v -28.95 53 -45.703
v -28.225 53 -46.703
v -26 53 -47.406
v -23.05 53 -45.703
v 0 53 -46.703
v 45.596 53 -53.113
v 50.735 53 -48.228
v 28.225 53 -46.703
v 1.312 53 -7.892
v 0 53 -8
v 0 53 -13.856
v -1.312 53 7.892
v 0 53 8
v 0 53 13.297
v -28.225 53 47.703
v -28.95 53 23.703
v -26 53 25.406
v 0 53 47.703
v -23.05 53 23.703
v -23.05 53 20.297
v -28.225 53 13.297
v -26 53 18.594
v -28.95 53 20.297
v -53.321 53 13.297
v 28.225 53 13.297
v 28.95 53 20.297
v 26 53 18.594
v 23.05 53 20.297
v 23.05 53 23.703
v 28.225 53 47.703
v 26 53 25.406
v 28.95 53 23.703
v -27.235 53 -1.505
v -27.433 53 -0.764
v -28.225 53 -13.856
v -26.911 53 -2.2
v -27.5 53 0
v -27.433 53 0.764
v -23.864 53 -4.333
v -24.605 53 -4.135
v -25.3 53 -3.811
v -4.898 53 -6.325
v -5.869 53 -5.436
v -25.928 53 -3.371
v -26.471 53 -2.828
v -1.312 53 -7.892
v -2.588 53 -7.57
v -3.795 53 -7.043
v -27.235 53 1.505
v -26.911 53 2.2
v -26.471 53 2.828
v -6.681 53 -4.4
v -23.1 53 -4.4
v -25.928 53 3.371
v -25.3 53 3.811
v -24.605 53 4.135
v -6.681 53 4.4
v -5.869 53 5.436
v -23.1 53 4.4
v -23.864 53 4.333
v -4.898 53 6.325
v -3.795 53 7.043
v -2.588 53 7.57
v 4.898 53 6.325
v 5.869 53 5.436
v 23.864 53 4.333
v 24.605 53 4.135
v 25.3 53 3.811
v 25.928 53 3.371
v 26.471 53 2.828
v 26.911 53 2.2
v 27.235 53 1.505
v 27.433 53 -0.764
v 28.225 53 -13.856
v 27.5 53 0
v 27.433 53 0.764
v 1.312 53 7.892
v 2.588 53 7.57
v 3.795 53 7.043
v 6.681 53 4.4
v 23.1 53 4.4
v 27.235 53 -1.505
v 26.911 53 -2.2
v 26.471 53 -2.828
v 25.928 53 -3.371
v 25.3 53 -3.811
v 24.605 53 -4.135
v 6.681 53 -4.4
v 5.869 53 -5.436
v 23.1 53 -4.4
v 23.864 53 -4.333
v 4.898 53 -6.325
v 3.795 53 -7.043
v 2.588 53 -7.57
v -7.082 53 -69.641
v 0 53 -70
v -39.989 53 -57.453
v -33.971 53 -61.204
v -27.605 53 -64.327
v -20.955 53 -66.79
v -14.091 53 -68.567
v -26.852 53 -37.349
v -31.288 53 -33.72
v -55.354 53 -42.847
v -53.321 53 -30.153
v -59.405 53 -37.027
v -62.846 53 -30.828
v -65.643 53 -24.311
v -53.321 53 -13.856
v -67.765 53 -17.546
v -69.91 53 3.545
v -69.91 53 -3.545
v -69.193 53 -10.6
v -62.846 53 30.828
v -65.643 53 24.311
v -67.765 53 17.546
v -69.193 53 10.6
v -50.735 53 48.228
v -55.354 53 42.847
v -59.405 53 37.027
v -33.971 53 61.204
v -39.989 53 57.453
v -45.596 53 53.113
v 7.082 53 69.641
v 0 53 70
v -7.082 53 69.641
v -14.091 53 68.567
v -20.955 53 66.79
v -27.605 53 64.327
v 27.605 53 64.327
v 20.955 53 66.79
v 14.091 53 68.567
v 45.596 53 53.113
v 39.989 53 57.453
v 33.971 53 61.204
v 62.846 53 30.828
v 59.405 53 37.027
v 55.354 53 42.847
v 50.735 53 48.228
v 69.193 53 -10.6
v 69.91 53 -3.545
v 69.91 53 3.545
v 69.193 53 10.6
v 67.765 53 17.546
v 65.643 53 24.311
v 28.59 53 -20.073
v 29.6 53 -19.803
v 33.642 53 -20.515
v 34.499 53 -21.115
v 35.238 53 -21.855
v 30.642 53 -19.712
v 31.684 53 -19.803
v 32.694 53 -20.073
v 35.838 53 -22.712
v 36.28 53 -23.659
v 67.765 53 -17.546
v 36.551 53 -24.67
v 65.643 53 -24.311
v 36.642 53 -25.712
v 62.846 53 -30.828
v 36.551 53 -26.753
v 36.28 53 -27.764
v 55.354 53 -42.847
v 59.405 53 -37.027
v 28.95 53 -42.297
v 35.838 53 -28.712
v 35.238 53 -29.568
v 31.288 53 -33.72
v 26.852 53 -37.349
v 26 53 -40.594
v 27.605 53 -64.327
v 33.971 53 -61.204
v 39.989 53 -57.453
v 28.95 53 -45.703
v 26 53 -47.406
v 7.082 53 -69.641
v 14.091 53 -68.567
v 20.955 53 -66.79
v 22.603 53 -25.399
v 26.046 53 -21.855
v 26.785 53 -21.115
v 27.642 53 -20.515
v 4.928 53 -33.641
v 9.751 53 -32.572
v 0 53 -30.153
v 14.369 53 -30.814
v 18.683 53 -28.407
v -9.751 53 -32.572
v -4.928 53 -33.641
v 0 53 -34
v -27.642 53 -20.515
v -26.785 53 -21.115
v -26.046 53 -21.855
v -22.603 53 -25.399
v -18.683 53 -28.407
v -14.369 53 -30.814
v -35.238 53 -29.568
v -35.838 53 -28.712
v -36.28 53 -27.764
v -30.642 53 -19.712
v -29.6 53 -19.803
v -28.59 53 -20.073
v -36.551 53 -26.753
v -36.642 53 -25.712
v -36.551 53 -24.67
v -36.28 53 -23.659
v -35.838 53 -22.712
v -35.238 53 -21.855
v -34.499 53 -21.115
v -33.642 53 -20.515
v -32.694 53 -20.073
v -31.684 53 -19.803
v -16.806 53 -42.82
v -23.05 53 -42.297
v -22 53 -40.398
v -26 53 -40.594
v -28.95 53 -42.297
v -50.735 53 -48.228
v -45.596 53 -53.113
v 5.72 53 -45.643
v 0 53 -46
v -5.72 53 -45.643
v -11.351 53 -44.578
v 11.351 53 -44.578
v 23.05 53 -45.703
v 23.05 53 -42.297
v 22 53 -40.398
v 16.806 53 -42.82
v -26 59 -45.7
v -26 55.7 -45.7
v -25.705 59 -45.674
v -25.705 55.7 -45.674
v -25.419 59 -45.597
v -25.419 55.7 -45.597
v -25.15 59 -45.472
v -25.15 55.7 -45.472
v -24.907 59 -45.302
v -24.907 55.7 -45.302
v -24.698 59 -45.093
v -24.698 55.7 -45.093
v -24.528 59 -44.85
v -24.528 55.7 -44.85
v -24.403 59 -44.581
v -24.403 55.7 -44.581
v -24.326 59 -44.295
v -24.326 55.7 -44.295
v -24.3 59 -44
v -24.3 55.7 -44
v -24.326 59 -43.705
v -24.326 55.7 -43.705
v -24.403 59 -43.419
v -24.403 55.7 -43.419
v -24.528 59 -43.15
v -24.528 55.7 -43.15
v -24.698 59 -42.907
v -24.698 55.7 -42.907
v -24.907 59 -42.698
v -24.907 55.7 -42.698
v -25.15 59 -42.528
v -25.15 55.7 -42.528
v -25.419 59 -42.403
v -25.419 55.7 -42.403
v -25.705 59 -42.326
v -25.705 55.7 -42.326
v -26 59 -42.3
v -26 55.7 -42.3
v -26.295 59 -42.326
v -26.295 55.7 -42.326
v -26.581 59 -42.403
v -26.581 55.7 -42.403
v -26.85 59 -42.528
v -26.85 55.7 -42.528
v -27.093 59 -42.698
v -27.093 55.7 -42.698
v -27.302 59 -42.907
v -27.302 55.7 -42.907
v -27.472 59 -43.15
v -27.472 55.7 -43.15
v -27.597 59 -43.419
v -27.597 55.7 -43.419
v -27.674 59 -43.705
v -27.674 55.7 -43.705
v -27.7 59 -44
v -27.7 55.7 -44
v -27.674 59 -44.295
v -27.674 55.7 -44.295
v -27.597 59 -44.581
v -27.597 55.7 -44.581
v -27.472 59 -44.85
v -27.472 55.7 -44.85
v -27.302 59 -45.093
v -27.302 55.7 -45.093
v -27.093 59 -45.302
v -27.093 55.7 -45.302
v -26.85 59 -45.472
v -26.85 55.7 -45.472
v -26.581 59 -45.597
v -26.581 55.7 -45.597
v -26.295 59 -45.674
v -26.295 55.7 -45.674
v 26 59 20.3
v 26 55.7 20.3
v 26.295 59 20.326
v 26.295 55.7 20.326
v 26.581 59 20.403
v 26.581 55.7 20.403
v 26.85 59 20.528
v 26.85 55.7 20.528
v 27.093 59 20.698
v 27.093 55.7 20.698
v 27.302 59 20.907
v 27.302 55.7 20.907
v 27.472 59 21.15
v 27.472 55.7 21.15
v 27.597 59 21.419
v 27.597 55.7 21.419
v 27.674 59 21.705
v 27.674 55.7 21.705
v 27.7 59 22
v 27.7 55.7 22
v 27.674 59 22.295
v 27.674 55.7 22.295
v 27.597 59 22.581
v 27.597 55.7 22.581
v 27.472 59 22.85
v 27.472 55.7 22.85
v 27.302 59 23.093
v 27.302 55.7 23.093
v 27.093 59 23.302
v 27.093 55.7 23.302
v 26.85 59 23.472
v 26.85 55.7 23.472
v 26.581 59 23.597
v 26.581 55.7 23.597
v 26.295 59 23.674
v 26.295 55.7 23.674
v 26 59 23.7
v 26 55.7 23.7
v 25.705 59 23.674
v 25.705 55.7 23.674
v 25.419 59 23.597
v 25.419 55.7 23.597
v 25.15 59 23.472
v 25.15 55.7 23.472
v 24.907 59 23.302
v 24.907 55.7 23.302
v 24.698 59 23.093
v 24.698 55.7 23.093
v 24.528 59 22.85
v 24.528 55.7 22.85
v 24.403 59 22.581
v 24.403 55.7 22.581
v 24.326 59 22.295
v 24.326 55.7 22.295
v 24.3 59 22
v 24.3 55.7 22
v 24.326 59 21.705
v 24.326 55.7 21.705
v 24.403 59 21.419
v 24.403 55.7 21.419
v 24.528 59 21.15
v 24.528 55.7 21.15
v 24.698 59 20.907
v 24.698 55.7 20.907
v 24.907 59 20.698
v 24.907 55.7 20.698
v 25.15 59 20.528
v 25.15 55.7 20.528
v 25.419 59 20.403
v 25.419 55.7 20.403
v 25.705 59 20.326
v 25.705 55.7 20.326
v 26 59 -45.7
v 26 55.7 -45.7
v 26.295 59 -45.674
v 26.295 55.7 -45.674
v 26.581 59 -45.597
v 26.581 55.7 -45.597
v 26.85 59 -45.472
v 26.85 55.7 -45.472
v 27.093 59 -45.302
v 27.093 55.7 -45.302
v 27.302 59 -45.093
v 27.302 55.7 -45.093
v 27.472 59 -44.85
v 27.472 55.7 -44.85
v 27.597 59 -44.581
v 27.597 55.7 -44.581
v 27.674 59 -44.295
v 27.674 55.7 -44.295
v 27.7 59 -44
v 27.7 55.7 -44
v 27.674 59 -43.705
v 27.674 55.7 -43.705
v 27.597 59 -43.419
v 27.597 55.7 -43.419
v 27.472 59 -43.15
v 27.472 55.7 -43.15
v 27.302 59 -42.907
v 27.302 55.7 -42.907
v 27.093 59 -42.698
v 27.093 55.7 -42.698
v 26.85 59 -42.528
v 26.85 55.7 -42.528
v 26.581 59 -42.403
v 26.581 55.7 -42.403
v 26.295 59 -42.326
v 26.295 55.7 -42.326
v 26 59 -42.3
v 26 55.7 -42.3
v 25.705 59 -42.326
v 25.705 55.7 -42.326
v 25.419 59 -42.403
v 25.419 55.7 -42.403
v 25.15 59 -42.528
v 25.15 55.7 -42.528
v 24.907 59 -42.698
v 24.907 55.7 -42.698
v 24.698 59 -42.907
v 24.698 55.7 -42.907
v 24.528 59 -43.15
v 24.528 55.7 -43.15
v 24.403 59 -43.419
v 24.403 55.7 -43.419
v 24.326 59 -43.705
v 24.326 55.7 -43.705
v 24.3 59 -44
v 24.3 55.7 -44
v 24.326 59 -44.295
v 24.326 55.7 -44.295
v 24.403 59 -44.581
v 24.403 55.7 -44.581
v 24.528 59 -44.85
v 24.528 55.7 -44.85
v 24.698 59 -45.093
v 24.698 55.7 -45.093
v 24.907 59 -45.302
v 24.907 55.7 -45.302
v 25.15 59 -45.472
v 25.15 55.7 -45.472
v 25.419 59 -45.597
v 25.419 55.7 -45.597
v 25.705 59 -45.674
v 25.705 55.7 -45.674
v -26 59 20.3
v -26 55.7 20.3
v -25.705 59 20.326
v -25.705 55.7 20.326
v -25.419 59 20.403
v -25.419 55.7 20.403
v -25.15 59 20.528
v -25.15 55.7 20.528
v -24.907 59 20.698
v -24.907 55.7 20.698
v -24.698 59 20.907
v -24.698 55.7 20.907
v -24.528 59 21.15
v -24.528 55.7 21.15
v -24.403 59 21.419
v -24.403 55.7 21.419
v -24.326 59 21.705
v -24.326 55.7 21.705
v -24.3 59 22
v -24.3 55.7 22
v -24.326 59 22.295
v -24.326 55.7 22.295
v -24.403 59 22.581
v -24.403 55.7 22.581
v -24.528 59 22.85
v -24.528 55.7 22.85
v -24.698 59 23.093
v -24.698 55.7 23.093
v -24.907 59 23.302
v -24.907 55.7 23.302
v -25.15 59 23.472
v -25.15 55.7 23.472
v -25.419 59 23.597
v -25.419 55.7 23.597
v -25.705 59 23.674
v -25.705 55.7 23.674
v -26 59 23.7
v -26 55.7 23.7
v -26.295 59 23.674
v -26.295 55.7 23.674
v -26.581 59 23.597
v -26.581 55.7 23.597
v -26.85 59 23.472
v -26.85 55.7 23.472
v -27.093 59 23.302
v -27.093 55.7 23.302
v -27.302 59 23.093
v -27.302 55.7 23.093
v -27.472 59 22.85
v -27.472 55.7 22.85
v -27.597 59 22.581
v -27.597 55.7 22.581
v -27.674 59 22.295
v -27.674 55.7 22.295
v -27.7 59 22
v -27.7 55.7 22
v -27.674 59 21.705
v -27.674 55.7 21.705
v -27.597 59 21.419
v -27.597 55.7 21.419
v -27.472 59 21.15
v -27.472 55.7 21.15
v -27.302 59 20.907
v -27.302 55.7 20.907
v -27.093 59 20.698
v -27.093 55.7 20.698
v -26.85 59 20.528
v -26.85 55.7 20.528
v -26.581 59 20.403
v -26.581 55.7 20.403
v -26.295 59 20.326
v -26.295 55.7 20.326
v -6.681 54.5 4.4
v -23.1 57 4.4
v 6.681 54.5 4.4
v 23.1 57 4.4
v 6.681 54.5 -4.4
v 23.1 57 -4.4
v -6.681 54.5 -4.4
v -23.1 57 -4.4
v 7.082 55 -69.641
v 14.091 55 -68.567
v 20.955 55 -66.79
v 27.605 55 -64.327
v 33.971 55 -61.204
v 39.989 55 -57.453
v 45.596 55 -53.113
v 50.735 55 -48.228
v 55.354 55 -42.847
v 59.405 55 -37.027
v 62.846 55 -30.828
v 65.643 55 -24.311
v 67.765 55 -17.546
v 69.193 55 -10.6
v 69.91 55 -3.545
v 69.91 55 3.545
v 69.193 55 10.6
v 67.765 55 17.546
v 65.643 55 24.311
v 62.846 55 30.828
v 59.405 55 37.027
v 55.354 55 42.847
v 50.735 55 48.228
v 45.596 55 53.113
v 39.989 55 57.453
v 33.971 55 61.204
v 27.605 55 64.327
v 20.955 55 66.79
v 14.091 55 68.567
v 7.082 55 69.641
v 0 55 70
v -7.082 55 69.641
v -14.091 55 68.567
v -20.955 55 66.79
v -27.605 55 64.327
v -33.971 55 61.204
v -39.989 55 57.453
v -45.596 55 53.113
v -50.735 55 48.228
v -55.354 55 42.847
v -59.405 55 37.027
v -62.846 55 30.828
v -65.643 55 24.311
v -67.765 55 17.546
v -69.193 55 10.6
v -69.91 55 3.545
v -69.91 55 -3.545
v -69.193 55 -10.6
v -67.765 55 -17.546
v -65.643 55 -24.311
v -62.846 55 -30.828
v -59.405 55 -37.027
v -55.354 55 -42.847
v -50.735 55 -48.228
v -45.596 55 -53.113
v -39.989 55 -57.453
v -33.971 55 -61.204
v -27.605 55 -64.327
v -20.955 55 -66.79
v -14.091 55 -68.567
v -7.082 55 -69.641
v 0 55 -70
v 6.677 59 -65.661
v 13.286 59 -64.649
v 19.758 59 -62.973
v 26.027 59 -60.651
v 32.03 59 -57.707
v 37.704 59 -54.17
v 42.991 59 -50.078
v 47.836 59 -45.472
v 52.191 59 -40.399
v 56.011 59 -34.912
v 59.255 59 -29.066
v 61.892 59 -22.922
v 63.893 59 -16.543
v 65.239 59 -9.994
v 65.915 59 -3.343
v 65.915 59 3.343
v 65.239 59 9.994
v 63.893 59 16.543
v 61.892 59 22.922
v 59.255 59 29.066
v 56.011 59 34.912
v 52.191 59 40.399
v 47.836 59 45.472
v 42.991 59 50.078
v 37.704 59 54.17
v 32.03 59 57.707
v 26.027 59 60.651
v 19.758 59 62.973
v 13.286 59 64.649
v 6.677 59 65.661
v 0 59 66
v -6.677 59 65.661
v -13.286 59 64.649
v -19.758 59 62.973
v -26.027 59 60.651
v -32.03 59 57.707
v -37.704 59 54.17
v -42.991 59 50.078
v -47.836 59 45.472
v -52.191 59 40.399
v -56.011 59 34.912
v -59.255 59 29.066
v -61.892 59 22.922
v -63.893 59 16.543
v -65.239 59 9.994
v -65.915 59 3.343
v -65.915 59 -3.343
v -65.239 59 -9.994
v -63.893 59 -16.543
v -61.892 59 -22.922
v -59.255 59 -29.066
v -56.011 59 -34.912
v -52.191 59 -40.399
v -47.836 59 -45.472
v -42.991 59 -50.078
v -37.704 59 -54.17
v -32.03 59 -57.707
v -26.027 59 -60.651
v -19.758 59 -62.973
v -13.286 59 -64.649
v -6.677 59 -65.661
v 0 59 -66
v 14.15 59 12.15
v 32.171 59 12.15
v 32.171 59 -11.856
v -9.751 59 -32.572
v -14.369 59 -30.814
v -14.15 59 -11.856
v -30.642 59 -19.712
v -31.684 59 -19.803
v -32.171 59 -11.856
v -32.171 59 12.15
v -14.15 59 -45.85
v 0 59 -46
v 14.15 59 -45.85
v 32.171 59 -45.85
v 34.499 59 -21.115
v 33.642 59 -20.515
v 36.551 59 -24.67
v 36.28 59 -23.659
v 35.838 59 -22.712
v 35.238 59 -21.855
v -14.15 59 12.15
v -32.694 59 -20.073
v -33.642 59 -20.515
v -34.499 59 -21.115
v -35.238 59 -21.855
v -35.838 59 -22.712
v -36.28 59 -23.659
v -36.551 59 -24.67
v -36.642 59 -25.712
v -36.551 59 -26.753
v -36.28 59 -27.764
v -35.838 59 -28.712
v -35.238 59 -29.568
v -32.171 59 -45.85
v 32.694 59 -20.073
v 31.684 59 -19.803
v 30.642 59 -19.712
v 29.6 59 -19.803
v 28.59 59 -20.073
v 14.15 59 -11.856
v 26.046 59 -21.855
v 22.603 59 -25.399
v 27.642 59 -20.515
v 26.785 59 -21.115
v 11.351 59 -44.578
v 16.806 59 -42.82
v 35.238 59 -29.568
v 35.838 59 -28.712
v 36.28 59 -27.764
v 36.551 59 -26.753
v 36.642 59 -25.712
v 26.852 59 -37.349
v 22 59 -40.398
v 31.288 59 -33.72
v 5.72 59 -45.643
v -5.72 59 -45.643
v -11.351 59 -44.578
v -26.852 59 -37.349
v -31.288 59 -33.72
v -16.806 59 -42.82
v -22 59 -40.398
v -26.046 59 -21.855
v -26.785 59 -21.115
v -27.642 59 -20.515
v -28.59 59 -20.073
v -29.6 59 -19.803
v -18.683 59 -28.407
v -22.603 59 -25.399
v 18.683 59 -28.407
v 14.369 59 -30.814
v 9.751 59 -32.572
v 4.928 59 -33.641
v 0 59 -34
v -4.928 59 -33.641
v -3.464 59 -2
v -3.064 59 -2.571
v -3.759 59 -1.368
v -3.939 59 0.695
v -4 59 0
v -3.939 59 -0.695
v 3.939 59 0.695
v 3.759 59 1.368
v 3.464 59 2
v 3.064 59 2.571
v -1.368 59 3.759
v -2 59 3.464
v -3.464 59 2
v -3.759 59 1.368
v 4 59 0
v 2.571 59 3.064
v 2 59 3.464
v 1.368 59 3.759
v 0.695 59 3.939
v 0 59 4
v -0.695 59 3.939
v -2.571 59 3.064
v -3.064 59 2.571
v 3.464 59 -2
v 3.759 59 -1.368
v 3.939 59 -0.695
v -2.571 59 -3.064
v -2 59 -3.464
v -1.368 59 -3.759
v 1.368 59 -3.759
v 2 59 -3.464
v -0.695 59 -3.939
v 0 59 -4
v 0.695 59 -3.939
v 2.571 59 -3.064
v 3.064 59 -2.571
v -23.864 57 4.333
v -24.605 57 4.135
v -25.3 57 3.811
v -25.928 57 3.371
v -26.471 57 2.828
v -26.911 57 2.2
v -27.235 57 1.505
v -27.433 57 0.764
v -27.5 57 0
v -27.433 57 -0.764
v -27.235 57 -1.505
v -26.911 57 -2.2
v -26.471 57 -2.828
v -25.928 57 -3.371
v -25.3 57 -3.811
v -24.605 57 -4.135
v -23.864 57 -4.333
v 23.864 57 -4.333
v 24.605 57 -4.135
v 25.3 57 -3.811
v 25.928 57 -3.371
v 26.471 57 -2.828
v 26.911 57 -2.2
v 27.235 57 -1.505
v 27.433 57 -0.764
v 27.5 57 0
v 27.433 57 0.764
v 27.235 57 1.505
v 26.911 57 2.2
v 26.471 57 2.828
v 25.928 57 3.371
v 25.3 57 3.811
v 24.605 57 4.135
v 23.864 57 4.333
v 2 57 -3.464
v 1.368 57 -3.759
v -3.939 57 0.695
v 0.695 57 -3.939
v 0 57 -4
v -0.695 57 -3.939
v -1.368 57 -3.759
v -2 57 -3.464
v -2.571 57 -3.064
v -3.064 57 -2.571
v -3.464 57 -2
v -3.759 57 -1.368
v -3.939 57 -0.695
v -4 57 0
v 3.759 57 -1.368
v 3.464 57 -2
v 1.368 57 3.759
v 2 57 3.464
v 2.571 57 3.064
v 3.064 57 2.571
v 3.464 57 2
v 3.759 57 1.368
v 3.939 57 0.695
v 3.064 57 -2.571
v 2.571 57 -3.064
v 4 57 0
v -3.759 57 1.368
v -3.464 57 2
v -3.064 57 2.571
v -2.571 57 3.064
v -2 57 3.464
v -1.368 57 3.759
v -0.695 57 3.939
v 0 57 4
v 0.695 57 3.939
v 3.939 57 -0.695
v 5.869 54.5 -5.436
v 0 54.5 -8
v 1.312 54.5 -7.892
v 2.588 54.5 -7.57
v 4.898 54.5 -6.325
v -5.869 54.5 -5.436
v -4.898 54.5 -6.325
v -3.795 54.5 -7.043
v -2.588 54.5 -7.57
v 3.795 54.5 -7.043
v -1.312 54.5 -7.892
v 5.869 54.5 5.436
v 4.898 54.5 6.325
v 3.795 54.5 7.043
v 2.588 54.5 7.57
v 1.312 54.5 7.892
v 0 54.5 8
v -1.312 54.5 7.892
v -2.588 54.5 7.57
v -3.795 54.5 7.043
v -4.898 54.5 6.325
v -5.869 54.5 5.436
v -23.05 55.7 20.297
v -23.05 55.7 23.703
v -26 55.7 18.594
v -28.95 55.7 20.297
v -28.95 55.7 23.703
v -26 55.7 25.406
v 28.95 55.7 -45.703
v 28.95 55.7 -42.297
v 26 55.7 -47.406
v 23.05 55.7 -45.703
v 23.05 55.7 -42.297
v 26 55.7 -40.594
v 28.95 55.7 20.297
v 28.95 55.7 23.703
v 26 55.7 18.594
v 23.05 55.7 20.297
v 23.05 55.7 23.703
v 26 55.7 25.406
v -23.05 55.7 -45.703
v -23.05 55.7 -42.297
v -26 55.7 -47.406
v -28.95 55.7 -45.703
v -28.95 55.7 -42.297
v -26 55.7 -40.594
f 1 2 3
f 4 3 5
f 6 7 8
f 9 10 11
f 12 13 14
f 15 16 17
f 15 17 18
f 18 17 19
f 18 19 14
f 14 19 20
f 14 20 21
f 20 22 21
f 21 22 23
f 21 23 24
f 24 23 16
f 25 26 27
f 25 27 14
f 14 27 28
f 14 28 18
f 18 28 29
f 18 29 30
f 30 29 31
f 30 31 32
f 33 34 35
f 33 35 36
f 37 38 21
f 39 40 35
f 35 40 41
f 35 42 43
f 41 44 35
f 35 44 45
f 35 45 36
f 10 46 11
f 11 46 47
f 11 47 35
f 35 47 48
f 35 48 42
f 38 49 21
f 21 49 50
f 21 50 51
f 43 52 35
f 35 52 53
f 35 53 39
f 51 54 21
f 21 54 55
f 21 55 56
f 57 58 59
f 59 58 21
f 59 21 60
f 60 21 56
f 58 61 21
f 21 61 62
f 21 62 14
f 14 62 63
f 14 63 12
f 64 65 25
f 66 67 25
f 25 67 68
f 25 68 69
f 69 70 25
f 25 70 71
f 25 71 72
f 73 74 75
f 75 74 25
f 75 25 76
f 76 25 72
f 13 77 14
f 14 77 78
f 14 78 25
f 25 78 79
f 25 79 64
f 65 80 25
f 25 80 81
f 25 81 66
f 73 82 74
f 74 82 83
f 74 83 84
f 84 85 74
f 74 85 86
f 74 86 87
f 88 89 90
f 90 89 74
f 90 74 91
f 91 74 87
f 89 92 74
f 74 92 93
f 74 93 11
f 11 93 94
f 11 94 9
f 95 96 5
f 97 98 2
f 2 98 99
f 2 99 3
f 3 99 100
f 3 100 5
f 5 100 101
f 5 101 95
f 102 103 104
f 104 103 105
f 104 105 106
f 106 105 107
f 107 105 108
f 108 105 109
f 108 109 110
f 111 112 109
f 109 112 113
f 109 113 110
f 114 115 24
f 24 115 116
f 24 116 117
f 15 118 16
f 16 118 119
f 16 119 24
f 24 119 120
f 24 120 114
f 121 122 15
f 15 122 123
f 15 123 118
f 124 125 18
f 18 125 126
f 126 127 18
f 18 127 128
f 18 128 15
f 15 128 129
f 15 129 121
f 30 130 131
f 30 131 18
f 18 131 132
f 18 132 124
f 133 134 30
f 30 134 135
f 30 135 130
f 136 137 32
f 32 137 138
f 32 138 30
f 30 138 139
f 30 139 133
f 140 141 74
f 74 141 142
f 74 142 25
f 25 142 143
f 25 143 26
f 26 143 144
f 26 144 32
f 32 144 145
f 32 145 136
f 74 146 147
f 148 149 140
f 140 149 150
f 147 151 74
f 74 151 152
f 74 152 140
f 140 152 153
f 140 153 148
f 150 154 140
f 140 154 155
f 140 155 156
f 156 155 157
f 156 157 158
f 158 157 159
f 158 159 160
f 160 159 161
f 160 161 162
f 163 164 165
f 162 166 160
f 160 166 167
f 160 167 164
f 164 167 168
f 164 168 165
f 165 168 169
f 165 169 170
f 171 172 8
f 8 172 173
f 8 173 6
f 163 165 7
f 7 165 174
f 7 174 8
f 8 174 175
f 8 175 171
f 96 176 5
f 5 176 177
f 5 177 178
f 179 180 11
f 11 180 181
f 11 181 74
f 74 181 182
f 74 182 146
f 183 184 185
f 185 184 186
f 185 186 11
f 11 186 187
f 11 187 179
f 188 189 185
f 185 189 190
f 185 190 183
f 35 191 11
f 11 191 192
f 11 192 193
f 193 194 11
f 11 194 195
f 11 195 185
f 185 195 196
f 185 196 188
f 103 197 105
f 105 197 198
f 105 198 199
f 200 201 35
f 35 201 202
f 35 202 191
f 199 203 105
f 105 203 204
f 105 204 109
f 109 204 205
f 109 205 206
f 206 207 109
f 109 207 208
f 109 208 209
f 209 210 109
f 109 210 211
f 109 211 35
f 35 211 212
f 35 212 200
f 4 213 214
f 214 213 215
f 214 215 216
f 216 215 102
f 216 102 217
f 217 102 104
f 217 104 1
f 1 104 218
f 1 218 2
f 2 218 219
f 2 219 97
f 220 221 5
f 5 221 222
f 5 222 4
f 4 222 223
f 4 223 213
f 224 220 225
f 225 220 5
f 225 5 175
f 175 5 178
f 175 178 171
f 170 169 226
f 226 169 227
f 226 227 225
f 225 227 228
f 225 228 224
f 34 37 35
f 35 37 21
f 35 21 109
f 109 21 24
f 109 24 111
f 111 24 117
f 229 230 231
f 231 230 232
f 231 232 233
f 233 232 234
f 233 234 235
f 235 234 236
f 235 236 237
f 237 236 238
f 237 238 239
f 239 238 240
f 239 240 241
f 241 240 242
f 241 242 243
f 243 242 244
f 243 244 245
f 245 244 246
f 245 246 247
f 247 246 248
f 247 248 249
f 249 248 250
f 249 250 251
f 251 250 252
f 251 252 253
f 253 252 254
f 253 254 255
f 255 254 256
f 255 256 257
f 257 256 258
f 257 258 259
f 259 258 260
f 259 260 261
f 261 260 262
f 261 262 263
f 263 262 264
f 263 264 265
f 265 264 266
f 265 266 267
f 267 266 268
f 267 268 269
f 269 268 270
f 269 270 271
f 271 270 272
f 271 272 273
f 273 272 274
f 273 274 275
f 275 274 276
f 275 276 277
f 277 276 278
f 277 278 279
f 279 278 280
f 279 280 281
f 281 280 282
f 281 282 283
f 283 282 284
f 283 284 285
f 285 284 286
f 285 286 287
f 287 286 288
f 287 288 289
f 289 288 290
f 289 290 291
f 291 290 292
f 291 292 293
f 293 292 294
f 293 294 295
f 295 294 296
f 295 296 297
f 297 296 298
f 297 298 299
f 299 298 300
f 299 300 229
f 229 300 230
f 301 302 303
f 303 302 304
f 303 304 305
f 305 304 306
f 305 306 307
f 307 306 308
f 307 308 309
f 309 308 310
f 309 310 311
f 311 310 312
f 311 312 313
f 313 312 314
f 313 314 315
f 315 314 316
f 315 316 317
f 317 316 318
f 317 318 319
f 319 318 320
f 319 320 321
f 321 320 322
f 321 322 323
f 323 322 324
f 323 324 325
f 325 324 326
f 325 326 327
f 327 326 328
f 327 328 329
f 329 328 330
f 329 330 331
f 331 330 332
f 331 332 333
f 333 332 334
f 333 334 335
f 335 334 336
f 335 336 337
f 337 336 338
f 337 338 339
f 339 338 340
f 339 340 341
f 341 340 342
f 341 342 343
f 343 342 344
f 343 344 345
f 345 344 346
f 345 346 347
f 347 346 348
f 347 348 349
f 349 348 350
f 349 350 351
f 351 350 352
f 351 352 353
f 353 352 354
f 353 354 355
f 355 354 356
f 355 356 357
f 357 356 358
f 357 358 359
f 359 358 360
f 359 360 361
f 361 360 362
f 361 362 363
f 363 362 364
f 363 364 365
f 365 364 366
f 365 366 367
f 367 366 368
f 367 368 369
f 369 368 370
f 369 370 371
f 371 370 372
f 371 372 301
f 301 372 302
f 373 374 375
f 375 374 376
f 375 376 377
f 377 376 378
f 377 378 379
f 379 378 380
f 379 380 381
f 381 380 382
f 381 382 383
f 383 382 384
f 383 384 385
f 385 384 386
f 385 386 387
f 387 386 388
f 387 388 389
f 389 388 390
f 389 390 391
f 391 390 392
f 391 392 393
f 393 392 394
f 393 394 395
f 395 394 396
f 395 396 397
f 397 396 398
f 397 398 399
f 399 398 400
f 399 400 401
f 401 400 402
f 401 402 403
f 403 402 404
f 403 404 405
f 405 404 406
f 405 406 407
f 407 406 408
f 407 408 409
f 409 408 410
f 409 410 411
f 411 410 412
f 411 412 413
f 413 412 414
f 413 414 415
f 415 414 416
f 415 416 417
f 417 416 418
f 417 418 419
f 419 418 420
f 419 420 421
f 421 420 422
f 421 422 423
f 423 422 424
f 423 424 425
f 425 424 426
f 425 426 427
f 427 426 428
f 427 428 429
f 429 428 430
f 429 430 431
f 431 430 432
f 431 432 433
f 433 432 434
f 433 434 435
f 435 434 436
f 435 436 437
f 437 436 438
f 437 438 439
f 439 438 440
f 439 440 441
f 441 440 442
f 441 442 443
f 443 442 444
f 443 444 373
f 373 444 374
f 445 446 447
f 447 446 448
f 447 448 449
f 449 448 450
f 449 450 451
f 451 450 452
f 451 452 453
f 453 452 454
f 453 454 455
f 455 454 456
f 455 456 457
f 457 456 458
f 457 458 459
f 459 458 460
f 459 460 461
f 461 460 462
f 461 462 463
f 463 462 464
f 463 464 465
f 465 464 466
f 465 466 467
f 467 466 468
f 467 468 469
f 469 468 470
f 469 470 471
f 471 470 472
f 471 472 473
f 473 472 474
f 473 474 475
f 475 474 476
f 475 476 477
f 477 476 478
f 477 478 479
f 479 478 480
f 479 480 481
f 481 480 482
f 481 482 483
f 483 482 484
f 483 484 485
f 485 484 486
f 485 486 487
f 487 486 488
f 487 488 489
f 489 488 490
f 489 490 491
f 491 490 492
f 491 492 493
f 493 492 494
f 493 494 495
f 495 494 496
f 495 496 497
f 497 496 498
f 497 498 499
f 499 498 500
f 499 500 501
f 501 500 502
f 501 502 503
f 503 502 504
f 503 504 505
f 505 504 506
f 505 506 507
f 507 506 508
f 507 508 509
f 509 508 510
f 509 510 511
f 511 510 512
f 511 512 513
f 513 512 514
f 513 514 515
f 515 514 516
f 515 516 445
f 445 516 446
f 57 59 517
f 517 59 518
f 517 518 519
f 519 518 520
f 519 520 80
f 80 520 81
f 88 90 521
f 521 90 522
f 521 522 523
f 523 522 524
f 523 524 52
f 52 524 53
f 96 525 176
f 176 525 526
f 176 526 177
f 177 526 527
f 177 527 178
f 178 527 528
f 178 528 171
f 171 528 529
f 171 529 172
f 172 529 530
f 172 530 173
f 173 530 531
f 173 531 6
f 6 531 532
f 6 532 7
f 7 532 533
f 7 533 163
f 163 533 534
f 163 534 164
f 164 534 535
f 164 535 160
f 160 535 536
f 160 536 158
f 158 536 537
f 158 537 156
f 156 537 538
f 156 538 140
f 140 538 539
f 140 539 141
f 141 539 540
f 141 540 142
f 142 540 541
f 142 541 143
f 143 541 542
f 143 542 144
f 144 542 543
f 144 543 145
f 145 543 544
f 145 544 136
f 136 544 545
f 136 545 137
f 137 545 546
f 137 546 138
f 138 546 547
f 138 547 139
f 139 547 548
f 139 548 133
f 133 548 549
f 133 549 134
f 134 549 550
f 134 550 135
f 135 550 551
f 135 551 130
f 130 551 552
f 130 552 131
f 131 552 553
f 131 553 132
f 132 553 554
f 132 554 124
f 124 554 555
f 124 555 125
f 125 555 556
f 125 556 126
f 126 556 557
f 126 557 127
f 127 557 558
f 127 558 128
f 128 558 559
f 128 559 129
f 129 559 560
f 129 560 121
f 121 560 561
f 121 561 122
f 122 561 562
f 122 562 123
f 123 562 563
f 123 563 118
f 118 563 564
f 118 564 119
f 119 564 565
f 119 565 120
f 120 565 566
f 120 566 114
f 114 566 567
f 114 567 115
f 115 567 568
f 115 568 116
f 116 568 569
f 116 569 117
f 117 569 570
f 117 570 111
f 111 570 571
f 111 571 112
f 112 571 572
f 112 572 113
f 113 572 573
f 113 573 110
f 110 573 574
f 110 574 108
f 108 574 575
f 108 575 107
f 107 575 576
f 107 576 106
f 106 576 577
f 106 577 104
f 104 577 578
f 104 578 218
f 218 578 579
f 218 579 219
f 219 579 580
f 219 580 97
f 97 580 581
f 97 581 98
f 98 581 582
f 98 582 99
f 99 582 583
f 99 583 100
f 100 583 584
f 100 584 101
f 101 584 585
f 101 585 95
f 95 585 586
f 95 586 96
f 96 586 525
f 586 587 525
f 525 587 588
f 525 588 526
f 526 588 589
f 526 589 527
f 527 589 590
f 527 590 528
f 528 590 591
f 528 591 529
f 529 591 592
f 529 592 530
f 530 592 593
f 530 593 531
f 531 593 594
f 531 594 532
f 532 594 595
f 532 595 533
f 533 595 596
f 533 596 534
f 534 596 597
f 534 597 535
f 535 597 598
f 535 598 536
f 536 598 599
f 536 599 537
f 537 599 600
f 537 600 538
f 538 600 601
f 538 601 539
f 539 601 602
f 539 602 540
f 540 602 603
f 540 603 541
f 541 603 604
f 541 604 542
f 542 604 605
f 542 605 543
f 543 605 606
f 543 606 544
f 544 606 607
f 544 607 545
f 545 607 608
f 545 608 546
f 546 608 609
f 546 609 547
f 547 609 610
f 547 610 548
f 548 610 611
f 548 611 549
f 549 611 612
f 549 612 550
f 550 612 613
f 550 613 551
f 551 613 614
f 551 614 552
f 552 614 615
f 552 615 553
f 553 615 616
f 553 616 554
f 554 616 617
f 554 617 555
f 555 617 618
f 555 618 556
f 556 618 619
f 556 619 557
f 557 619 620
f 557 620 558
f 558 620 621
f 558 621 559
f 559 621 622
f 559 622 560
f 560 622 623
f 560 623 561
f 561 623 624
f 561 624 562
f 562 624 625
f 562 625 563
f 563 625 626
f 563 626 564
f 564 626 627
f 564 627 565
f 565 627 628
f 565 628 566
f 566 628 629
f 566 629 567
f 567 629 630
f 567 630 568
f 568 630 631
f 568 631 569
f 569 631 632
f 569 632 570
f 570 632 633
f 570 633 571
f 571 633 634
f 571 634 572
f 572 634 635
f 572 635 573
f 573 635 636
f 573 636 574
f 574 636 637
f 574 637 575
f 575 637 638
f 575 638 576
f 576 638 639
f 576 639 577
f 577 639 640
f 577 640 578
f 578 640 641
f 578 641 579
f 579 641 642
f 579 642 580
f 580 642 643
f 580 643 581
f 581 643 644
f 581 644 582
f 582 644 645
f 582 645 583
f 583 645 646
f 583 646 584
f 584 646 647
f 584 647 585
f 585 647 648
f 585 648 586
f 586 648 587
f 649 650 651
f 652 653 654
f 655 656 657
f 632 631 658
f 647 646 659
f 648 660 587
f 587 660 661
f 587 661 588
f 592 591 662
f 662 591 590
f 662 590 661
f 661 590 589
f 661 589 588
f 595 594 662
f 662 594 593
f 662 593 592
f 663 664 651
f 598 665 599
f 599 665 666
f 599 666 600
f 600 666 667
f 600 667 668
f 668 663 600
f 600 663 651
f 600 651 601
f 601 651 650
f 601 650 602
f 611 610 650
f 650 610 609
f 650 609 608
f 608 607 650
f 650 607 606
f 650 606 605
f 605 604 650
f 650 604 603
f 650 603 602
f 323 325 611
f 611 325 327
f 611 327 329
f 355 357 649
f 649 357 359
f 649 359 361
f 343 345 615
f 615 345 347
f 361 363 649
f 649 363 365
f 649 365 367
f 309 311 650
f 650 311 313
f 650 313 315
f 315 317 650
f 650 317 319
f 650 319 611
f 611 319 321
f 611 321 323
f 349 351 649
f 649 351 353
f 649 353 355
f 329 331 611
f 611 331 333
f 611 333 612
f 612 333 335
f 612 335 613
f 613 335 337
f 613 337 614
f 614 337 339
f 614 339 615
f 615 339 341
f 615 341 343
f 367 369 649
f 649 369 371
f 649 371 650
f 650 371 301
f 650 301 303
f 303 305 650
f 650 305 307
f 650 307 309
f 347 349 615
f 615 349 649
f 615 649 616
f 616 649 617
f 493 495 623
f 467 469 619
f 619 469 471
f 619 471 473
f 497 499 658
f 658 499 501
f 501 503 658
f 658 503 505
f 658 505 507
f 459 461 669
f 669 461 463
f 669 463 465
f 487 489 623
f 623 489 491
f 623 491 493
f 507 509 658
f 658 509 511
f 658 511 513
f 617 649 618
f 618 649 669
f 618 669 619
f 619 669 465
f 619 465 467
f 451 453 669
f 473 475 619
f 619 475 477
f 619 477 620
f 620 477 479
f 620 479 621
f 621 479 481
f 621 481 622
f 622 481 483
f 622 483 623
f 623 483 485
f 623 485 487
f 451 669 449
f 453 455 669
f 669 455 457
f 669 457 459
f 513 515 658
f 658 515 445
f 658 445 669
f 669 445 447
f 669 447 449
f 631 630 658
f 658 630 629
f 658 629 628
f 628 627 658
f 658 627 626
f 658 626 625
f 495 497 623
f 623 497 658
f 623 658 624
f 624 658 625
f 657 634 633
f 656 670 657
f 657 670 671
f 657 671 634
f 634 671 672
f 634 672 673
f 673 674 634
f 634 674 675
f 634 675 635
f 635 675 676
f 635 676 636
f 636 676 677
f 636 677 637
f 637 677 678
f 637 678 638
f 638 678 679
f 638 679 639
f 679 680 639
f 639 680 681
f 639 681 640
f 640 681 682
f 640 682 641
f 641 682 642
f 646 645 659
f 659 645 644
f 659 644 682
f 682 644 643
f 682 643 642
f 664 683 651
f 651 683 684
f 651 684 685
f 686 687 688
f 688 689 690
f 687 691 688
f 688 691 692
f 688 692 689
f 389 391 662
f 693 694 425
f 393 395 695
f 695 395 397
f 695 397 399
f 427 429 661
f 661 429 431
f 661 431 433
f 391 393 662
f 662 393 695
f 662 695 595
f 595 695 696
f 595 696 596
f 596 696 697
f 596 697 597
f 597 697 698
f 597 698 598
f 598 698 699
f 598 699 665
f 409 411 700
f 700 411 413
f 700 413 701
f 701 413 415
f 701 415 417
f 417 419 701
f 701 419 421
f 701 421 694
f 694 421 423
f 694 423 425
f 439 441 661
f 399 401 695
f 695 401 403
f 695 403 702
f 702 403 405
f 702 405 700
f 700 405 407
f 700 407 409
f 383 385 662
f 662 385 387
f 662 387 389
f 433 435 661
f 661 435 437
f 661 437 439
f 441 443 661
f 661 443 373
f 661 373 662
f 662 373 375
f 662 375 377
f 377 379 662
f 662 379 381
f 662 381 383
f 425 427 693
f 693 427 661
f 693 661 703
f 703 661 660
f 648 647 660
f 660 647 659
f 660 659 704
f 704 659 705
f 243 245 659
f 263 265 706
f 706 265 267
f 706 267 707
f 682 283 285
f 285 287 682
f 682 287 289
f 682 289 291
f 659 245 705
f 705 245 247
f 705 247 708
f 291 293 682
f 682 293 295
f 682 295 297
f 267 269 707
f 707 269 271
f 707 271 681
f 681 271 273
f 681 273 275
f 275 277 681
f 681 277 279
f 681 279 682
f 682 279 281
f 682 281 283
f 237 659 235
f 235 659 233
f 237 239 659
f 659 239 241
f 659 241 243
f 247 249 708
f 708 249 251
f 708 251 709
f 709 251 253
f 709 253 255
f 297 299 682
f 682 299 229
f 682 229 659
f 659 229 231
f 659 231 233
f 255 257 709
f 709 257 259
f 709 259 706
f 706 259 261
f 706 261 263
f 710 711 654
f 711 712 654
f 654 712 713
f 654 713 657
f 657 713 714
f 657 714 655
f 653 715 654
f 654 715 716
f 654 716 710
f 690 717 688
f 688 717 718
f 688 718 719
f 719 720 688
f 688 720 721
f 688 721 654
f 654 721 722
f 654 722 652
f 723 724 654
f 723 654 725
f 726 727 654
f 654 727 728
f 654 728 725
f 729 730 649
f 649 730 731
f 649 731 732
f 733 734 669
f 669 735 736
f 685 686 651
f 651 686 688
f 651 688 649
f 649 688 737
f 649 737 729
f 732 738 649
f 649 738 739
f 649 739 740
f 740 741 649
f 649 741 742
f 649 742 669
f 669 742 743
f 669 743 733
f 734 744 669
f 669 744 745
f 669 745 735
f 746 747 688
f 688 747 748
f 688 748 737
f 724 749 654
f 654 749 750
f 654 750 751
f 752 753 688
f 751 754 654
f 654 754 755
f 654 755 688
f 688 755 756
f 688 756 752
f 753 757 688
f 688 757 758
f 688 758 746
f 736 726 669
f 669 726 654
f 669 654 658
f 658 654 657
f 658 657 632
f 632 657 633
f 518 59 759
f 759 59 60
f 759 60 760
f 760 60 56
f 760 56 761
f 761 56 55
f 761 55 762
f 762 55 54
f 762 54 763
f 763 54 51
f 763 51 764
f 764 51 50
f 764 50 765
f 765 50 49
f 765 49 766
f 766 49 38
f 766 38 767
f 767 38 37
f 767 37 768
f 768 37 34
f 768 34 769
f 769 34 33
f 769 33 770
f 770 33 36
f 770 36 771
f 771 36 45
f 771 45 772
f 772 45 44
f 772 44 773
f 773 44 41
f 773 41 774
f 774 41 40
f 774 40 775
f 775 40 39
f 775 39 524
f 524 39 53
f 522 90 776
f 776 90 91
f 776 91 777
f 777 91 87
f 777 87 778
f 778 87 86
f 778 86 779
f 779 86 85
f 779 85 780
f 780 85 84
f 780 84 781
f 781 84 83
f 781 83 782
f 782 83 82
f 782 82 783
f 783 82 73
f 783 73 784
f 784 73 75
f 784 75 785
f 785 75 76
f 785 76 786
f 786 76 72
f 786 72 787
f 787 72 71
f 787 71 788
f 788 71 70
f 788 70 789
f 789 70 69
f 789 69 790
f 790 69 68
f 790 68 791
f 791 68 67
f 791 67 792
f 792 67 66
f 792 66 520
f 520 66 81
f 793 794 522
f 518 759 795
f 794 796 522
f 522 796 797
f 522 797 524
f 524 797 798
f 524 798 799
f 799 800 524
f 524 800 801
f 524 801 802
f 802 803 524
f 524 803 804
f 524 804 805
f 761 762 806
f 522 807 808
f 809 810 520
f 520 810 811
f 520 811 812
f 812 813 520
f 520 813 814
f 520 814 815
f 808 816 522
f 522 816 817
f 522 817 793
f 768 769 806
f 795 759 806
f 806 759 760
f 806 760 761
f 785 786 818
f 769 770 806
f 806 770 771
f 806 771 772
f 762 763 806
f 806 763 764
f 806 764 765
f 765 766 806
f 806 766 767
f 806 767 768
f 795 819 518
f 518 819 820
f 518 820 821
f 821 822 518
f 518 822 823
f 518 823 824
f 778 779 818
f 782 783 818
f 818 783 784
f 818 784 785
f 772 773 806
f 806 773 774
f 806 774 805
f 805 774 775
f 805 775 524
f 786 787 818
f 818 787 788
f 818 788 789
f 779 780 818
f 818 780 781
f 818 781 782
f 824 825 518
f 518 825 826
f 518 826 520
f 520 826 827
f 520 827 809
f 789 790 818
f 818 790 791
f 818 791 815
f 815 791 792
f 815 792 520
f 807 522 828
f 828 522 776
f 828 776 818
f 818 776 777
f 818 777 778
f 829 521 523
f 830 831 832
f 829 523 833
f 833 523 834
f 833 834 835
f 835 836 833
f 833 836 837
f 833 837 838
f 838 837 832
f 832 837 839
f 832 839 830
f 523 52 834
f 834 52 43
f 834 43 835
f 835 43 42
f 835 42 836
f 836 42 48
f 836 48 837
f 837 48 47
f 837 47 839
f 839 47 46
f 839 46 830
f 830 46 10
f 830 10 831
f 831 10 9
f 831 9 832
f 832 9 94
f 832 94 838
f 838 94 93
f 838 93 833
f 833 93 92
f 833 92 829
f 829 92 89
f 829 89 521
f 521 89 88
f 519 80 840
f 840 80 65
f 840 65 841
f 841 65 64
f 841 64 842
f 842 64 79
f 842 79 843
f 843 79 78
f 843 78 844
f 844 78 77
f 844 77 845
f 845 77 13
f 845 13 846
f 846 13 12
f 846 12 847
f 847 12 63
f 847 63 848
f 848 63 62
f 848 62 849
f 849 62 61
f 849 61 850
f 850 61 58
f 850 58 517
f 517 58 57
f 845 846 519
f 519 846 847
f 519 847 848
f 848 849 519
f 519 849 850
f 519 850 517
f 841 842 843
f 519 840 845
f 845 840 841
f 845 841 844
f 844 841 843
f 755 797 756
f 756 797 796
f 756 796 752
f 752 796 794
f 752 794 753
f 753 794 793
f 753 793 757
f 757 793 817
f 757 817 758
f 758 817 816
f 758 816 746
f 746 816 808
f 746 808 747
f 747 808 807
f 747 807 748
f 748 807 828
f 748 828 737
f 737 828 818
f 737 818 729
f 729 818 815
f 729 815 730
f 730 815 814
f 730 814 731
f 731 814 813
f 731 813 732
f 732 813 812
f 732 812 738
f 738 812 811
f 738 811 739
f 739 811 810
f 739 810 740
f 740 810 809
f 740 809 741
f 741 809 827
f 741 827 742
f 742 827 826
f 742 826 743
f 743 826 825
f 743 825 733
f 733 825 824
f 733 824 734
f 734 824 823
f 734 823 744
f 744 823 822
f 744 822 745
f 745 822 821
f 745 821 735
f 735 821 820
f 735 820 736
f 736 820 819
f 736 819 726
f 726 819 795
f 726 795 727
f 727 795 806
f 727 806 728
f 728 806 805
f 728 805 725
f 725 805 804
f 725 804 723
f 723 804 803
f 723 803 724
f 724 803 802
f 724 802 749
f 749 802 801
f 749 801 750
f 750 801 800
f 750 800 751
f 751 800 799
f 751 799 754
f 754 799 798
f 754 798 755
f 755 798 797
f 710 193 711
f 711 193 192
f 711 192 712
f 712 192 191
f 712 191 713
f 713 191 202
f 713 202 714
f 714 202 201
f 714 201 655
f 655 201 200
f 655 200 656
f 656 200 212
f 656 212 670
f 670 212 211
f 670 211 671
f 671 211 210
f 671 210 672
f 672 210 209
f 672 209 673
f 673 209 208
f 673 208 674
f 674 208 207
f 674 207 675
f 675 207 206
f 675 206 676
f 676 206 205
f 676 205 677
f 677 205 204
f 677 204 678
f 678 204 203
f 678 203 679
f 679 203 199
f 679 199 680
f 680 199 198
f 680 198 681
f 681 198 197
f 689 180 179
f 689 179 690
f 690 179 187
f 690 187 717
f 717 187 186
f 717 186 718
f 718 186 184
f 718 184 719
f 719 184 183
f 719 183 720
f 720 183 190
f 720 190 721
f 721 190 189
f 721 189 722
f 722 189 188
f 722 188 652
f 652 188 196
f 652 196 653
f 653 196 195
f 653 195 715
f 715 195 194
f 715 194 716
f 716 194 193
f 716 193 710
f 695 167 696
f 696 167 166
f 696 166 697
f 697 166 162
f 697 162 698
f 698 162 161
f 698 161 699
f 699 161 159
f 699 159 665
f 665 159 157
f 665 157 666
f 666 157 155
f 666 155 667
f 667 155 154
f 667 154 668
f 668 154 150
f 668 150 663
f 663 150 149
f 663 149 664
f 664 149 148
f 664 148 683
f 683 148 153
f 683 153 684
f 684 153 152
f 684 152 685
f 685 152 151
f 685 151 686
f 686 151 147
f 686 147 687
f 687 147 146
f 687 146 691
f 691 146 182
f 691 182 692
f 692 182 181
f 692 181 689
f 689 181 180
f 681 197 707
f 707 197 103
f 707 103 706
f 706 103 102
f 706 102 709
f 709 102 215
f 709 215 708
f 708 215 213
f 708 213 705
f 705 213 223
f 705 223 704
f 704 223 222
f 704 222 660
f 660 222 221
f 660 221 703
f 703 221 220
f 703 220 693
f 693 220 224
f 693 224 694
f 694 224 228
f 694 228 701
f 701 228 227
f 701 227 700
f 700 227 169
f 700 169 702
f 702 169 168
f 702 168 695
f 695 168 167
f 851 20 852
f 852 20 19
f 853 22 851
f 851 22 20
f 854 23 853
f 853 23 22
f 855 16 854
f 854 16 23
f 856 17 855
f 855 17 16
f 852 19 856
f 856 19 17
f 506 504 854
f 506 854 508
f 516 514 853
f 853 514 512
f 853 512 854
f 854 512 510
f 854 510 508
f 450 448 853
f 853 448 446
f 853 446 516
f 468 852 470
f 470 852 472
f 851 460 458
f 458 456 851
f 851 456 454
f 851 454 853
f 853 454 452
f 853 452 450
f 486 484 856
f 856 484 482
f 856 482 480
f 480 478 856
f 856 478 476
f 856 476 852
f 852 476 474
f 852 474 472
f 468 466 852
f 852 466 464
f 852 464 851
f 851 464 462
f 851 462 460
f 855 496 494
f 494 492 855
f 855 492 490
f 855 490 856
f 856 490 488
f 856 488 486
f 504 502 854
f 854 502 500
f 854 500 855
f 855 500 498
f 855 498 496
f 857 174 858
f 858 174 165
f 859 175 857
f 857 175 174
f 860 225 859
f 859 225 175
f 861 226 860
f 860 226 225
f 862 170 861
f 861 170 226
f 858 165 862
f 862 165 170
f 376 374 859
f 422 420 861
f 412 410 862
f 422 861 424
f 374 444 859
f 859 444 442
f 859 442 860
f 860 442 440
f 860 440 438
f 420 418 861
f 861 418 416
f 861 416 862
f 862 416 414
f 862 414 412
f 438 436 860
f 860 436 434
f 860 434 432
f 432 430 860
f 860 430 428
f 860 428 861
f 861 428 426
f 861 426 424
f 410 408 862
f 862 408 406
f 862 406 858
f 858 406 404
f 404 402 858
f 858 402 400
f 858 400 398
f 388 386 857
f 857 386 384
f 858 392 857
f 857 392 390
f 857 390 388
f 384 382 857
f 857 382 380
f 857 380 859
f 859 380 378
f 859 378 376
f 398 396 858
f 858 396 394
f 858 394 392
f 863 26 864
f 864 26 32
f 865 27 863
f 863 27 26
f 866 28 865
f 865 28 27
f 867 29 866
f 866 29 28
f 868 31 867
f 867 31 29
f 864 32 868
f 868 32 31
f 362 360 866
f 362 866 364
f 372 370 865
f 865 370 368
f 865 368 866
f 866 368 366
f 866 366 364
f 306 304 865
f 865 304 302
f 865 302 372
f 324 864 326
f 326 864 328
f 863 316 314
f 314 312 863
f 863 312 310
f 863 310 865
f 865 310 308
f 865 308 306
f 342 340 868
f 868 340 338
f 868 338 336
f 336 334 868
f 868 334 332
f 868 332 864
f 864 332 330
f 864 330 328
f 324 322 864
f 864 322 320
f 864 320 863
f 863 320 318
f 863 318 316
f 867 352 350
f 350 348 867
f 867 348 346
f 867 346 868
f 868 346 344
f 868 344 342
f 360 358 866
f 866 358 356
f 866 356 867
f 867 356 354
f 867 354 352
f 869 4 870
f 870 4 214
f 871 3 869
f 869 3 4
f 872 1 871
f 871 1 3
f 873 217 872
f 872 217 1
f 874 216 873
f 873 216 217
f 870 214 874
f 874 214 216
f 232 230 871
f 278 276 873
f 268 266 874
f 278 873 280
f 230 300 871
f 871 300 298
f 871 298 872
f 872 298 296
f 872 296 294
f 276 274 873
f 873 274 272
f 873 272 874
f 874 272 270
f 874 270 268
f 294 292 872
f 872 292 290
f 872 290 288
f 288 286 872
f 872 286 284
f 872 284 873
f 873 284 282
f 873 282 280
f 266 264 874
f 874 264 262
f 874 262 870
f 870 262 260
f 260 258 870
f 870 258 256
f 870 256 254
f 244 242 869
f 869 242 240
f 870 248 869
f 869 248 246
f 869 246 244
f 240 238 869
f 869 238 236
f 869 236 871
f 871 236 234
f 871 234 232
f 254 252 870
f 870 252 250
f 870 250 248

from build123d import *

# Parameters (mm, degrees)
HORN_START                = 52.8
HORN_DOG_POCKET_DEPTH     = 4.2
HUB_START                 = 52.8
SKETCH3_R                 = 8
HUB_RELIEF_DEPTH          = 1.7
CENTRE_START              = 52.8
SKETCH4_R                 = 4
CENTRE_CABLE_KIDNEY_DEPTH = 6.4
TOWER_START               = 52.8
SKETCH5_R                 = 1.7
TOWER_BOLT_HOLES_DEPTH    = 6.4
TOWER_NUT_POCKETS_DEPTH   = 2.9


with BuildPart() as part:
    # Sketch1 → Turntable (revolve)
    with BuildSketch(Plane.XY, mode=Mode.PRIVATE) as turntable_sk:
        Polygon((0, 53), (70, 53), (70, 55), (66, 59), (0, 59), align=None)
    revolve(turntable_sk.sketch.rotate(Axis((0, 40, 0), (0, 1, 0)), 90), axis=Axis((0, 40, 0), (0, 1, 0)))

    # Sketch2 → Horn dog pocket (cut)
    with BuildSketch(Plane(origin=(0, 0, 0), x_dir=(1, 0, 0), z_dir=(0, 1, 0)).offset(HORN_START)):
        with BuildLine():
            Line((-23.1, -4.4), (23.1, -4.4))
            ThreePointArc((23.1, -4.4), (27.5, 0), (23.1, 4.4))
            Line((23.1, 4.4), (-23.1, 4.4))
            ThreePointArc((-23.1, 4.4), (-27.5, 0), (-23.1, -4.4))
        make_face()
    extrude(amount=HORN_DOG_POCKET_DEPTH, mode=Mode.SUBTRACT)

    # Sketch3 → Hub relief (cut)
    with BuildSketch(Plane(origin=(0, 0, 0), x_dir=(1, 0, 0), z_dir=(0, 1, 0)).offset(HUB_START)):
        Circle(SKETCH3_R)
    extrude(amount=HUB_RELIEF_DEPTH, mode=Mode.SUBTRACT)

    # Sketch4 → Centre + cable kidney (cut)
    with BuildSketch(Plane(origin=(0, 0, 0), x_dir=(1, 0, 0), z_dir=(0, 1, 0)).offset(CENTRE_START)):
        with Locations(Location((0, 0, 0), (0, 0, 270))):
            Circle(SKETCH4_R)
        with BuildLine():
            ThreePointArc((-35.238044383, 29.568230046), (0, 46), (35.238044383, 29.568230046))
            ThreePointArc((35.238044383, 29.568230046), (34.498503383, 21.115237729), (26.045511066, 21.854778729))
            ThreePointArc((26.045511066, 21.854778729), (0, 34), (-26.045511066, 21.854778729))
            ThreePointArc((-26.045511066, 21.854778729), (-34.498503383, 21.115237729), (-35.238044383, 29.568230046))
        make_face()
    extrude(amount=CENTRE_CABLE_KIDNEY_DEPTH, mode=Mode.SUBTRACT)

    # Sketch5 → Tower bolt holes (cut)
    with BuildSketch(Plane(origin=(0, 0, 0), x_dir=(1, 0, 0), z_dir=(0, 1, 0)).offset(TOWER_START)):
        with Locations(Location((-26, 44, 0), (0, 0, 90))):
            Circle(SKETCH5_R)
        with Locations(Location((-26, -22, 0), (0, 0, 90))):
            Circle(SKETCH5_R)
        with Locations(Location((26, 44, 0), (0, 0, 90))):
            Circle(SKETCH5_R)
        with Locations(Location((26, -22, 0), (0, 0, 90))):
            Circle(SKETCH5_R)
    extrude(amount=TOWER_BOLT_HOLES_DEPTH, mode=Mode.SUBTRACT)

    # Sketch6 → Tower nut pockets (cut)
    with BuildSketch(Plane(origin=(0, 0, 0), x_dir=(1, 0, 0), z_dir=(0, 1, 0)).offset(TOWER_START)):
        Polygon((-23.05, 42.296816706), (-26, 40.593633412), (-28.95, 42.296816706), (-28.95, 45.703183294), (-26, 47.406366588), (-23.05, 45.703183294), align=None)
        Polygon((-23.05, -23.703183294), (-26, -25.406366588), (-28.95, -23.703183294), (-28.95, -20.296816706), (-26, -18.593633412), (-23.05, -20.296816706), align=None)
        Polygon((28.95, 42.296816706), (26, 40.593633412), (23.05, 42.296816706), (23.05, 45.703183294), (26, 47.406366588), (28.95, 45.703183294), align=None)
        Polygon((28.95, -23.703183294), (26, -25.406366588), (23.05, -23.703183294), (23.05, -20.296816706), (26, -18.593633412), (28.95, -20.296816706), align=None)
    extrude(amount=TOWER_NUT_POCKETS_DEPTH, mode=Mode.SUBTRACT)


solid = part.part
